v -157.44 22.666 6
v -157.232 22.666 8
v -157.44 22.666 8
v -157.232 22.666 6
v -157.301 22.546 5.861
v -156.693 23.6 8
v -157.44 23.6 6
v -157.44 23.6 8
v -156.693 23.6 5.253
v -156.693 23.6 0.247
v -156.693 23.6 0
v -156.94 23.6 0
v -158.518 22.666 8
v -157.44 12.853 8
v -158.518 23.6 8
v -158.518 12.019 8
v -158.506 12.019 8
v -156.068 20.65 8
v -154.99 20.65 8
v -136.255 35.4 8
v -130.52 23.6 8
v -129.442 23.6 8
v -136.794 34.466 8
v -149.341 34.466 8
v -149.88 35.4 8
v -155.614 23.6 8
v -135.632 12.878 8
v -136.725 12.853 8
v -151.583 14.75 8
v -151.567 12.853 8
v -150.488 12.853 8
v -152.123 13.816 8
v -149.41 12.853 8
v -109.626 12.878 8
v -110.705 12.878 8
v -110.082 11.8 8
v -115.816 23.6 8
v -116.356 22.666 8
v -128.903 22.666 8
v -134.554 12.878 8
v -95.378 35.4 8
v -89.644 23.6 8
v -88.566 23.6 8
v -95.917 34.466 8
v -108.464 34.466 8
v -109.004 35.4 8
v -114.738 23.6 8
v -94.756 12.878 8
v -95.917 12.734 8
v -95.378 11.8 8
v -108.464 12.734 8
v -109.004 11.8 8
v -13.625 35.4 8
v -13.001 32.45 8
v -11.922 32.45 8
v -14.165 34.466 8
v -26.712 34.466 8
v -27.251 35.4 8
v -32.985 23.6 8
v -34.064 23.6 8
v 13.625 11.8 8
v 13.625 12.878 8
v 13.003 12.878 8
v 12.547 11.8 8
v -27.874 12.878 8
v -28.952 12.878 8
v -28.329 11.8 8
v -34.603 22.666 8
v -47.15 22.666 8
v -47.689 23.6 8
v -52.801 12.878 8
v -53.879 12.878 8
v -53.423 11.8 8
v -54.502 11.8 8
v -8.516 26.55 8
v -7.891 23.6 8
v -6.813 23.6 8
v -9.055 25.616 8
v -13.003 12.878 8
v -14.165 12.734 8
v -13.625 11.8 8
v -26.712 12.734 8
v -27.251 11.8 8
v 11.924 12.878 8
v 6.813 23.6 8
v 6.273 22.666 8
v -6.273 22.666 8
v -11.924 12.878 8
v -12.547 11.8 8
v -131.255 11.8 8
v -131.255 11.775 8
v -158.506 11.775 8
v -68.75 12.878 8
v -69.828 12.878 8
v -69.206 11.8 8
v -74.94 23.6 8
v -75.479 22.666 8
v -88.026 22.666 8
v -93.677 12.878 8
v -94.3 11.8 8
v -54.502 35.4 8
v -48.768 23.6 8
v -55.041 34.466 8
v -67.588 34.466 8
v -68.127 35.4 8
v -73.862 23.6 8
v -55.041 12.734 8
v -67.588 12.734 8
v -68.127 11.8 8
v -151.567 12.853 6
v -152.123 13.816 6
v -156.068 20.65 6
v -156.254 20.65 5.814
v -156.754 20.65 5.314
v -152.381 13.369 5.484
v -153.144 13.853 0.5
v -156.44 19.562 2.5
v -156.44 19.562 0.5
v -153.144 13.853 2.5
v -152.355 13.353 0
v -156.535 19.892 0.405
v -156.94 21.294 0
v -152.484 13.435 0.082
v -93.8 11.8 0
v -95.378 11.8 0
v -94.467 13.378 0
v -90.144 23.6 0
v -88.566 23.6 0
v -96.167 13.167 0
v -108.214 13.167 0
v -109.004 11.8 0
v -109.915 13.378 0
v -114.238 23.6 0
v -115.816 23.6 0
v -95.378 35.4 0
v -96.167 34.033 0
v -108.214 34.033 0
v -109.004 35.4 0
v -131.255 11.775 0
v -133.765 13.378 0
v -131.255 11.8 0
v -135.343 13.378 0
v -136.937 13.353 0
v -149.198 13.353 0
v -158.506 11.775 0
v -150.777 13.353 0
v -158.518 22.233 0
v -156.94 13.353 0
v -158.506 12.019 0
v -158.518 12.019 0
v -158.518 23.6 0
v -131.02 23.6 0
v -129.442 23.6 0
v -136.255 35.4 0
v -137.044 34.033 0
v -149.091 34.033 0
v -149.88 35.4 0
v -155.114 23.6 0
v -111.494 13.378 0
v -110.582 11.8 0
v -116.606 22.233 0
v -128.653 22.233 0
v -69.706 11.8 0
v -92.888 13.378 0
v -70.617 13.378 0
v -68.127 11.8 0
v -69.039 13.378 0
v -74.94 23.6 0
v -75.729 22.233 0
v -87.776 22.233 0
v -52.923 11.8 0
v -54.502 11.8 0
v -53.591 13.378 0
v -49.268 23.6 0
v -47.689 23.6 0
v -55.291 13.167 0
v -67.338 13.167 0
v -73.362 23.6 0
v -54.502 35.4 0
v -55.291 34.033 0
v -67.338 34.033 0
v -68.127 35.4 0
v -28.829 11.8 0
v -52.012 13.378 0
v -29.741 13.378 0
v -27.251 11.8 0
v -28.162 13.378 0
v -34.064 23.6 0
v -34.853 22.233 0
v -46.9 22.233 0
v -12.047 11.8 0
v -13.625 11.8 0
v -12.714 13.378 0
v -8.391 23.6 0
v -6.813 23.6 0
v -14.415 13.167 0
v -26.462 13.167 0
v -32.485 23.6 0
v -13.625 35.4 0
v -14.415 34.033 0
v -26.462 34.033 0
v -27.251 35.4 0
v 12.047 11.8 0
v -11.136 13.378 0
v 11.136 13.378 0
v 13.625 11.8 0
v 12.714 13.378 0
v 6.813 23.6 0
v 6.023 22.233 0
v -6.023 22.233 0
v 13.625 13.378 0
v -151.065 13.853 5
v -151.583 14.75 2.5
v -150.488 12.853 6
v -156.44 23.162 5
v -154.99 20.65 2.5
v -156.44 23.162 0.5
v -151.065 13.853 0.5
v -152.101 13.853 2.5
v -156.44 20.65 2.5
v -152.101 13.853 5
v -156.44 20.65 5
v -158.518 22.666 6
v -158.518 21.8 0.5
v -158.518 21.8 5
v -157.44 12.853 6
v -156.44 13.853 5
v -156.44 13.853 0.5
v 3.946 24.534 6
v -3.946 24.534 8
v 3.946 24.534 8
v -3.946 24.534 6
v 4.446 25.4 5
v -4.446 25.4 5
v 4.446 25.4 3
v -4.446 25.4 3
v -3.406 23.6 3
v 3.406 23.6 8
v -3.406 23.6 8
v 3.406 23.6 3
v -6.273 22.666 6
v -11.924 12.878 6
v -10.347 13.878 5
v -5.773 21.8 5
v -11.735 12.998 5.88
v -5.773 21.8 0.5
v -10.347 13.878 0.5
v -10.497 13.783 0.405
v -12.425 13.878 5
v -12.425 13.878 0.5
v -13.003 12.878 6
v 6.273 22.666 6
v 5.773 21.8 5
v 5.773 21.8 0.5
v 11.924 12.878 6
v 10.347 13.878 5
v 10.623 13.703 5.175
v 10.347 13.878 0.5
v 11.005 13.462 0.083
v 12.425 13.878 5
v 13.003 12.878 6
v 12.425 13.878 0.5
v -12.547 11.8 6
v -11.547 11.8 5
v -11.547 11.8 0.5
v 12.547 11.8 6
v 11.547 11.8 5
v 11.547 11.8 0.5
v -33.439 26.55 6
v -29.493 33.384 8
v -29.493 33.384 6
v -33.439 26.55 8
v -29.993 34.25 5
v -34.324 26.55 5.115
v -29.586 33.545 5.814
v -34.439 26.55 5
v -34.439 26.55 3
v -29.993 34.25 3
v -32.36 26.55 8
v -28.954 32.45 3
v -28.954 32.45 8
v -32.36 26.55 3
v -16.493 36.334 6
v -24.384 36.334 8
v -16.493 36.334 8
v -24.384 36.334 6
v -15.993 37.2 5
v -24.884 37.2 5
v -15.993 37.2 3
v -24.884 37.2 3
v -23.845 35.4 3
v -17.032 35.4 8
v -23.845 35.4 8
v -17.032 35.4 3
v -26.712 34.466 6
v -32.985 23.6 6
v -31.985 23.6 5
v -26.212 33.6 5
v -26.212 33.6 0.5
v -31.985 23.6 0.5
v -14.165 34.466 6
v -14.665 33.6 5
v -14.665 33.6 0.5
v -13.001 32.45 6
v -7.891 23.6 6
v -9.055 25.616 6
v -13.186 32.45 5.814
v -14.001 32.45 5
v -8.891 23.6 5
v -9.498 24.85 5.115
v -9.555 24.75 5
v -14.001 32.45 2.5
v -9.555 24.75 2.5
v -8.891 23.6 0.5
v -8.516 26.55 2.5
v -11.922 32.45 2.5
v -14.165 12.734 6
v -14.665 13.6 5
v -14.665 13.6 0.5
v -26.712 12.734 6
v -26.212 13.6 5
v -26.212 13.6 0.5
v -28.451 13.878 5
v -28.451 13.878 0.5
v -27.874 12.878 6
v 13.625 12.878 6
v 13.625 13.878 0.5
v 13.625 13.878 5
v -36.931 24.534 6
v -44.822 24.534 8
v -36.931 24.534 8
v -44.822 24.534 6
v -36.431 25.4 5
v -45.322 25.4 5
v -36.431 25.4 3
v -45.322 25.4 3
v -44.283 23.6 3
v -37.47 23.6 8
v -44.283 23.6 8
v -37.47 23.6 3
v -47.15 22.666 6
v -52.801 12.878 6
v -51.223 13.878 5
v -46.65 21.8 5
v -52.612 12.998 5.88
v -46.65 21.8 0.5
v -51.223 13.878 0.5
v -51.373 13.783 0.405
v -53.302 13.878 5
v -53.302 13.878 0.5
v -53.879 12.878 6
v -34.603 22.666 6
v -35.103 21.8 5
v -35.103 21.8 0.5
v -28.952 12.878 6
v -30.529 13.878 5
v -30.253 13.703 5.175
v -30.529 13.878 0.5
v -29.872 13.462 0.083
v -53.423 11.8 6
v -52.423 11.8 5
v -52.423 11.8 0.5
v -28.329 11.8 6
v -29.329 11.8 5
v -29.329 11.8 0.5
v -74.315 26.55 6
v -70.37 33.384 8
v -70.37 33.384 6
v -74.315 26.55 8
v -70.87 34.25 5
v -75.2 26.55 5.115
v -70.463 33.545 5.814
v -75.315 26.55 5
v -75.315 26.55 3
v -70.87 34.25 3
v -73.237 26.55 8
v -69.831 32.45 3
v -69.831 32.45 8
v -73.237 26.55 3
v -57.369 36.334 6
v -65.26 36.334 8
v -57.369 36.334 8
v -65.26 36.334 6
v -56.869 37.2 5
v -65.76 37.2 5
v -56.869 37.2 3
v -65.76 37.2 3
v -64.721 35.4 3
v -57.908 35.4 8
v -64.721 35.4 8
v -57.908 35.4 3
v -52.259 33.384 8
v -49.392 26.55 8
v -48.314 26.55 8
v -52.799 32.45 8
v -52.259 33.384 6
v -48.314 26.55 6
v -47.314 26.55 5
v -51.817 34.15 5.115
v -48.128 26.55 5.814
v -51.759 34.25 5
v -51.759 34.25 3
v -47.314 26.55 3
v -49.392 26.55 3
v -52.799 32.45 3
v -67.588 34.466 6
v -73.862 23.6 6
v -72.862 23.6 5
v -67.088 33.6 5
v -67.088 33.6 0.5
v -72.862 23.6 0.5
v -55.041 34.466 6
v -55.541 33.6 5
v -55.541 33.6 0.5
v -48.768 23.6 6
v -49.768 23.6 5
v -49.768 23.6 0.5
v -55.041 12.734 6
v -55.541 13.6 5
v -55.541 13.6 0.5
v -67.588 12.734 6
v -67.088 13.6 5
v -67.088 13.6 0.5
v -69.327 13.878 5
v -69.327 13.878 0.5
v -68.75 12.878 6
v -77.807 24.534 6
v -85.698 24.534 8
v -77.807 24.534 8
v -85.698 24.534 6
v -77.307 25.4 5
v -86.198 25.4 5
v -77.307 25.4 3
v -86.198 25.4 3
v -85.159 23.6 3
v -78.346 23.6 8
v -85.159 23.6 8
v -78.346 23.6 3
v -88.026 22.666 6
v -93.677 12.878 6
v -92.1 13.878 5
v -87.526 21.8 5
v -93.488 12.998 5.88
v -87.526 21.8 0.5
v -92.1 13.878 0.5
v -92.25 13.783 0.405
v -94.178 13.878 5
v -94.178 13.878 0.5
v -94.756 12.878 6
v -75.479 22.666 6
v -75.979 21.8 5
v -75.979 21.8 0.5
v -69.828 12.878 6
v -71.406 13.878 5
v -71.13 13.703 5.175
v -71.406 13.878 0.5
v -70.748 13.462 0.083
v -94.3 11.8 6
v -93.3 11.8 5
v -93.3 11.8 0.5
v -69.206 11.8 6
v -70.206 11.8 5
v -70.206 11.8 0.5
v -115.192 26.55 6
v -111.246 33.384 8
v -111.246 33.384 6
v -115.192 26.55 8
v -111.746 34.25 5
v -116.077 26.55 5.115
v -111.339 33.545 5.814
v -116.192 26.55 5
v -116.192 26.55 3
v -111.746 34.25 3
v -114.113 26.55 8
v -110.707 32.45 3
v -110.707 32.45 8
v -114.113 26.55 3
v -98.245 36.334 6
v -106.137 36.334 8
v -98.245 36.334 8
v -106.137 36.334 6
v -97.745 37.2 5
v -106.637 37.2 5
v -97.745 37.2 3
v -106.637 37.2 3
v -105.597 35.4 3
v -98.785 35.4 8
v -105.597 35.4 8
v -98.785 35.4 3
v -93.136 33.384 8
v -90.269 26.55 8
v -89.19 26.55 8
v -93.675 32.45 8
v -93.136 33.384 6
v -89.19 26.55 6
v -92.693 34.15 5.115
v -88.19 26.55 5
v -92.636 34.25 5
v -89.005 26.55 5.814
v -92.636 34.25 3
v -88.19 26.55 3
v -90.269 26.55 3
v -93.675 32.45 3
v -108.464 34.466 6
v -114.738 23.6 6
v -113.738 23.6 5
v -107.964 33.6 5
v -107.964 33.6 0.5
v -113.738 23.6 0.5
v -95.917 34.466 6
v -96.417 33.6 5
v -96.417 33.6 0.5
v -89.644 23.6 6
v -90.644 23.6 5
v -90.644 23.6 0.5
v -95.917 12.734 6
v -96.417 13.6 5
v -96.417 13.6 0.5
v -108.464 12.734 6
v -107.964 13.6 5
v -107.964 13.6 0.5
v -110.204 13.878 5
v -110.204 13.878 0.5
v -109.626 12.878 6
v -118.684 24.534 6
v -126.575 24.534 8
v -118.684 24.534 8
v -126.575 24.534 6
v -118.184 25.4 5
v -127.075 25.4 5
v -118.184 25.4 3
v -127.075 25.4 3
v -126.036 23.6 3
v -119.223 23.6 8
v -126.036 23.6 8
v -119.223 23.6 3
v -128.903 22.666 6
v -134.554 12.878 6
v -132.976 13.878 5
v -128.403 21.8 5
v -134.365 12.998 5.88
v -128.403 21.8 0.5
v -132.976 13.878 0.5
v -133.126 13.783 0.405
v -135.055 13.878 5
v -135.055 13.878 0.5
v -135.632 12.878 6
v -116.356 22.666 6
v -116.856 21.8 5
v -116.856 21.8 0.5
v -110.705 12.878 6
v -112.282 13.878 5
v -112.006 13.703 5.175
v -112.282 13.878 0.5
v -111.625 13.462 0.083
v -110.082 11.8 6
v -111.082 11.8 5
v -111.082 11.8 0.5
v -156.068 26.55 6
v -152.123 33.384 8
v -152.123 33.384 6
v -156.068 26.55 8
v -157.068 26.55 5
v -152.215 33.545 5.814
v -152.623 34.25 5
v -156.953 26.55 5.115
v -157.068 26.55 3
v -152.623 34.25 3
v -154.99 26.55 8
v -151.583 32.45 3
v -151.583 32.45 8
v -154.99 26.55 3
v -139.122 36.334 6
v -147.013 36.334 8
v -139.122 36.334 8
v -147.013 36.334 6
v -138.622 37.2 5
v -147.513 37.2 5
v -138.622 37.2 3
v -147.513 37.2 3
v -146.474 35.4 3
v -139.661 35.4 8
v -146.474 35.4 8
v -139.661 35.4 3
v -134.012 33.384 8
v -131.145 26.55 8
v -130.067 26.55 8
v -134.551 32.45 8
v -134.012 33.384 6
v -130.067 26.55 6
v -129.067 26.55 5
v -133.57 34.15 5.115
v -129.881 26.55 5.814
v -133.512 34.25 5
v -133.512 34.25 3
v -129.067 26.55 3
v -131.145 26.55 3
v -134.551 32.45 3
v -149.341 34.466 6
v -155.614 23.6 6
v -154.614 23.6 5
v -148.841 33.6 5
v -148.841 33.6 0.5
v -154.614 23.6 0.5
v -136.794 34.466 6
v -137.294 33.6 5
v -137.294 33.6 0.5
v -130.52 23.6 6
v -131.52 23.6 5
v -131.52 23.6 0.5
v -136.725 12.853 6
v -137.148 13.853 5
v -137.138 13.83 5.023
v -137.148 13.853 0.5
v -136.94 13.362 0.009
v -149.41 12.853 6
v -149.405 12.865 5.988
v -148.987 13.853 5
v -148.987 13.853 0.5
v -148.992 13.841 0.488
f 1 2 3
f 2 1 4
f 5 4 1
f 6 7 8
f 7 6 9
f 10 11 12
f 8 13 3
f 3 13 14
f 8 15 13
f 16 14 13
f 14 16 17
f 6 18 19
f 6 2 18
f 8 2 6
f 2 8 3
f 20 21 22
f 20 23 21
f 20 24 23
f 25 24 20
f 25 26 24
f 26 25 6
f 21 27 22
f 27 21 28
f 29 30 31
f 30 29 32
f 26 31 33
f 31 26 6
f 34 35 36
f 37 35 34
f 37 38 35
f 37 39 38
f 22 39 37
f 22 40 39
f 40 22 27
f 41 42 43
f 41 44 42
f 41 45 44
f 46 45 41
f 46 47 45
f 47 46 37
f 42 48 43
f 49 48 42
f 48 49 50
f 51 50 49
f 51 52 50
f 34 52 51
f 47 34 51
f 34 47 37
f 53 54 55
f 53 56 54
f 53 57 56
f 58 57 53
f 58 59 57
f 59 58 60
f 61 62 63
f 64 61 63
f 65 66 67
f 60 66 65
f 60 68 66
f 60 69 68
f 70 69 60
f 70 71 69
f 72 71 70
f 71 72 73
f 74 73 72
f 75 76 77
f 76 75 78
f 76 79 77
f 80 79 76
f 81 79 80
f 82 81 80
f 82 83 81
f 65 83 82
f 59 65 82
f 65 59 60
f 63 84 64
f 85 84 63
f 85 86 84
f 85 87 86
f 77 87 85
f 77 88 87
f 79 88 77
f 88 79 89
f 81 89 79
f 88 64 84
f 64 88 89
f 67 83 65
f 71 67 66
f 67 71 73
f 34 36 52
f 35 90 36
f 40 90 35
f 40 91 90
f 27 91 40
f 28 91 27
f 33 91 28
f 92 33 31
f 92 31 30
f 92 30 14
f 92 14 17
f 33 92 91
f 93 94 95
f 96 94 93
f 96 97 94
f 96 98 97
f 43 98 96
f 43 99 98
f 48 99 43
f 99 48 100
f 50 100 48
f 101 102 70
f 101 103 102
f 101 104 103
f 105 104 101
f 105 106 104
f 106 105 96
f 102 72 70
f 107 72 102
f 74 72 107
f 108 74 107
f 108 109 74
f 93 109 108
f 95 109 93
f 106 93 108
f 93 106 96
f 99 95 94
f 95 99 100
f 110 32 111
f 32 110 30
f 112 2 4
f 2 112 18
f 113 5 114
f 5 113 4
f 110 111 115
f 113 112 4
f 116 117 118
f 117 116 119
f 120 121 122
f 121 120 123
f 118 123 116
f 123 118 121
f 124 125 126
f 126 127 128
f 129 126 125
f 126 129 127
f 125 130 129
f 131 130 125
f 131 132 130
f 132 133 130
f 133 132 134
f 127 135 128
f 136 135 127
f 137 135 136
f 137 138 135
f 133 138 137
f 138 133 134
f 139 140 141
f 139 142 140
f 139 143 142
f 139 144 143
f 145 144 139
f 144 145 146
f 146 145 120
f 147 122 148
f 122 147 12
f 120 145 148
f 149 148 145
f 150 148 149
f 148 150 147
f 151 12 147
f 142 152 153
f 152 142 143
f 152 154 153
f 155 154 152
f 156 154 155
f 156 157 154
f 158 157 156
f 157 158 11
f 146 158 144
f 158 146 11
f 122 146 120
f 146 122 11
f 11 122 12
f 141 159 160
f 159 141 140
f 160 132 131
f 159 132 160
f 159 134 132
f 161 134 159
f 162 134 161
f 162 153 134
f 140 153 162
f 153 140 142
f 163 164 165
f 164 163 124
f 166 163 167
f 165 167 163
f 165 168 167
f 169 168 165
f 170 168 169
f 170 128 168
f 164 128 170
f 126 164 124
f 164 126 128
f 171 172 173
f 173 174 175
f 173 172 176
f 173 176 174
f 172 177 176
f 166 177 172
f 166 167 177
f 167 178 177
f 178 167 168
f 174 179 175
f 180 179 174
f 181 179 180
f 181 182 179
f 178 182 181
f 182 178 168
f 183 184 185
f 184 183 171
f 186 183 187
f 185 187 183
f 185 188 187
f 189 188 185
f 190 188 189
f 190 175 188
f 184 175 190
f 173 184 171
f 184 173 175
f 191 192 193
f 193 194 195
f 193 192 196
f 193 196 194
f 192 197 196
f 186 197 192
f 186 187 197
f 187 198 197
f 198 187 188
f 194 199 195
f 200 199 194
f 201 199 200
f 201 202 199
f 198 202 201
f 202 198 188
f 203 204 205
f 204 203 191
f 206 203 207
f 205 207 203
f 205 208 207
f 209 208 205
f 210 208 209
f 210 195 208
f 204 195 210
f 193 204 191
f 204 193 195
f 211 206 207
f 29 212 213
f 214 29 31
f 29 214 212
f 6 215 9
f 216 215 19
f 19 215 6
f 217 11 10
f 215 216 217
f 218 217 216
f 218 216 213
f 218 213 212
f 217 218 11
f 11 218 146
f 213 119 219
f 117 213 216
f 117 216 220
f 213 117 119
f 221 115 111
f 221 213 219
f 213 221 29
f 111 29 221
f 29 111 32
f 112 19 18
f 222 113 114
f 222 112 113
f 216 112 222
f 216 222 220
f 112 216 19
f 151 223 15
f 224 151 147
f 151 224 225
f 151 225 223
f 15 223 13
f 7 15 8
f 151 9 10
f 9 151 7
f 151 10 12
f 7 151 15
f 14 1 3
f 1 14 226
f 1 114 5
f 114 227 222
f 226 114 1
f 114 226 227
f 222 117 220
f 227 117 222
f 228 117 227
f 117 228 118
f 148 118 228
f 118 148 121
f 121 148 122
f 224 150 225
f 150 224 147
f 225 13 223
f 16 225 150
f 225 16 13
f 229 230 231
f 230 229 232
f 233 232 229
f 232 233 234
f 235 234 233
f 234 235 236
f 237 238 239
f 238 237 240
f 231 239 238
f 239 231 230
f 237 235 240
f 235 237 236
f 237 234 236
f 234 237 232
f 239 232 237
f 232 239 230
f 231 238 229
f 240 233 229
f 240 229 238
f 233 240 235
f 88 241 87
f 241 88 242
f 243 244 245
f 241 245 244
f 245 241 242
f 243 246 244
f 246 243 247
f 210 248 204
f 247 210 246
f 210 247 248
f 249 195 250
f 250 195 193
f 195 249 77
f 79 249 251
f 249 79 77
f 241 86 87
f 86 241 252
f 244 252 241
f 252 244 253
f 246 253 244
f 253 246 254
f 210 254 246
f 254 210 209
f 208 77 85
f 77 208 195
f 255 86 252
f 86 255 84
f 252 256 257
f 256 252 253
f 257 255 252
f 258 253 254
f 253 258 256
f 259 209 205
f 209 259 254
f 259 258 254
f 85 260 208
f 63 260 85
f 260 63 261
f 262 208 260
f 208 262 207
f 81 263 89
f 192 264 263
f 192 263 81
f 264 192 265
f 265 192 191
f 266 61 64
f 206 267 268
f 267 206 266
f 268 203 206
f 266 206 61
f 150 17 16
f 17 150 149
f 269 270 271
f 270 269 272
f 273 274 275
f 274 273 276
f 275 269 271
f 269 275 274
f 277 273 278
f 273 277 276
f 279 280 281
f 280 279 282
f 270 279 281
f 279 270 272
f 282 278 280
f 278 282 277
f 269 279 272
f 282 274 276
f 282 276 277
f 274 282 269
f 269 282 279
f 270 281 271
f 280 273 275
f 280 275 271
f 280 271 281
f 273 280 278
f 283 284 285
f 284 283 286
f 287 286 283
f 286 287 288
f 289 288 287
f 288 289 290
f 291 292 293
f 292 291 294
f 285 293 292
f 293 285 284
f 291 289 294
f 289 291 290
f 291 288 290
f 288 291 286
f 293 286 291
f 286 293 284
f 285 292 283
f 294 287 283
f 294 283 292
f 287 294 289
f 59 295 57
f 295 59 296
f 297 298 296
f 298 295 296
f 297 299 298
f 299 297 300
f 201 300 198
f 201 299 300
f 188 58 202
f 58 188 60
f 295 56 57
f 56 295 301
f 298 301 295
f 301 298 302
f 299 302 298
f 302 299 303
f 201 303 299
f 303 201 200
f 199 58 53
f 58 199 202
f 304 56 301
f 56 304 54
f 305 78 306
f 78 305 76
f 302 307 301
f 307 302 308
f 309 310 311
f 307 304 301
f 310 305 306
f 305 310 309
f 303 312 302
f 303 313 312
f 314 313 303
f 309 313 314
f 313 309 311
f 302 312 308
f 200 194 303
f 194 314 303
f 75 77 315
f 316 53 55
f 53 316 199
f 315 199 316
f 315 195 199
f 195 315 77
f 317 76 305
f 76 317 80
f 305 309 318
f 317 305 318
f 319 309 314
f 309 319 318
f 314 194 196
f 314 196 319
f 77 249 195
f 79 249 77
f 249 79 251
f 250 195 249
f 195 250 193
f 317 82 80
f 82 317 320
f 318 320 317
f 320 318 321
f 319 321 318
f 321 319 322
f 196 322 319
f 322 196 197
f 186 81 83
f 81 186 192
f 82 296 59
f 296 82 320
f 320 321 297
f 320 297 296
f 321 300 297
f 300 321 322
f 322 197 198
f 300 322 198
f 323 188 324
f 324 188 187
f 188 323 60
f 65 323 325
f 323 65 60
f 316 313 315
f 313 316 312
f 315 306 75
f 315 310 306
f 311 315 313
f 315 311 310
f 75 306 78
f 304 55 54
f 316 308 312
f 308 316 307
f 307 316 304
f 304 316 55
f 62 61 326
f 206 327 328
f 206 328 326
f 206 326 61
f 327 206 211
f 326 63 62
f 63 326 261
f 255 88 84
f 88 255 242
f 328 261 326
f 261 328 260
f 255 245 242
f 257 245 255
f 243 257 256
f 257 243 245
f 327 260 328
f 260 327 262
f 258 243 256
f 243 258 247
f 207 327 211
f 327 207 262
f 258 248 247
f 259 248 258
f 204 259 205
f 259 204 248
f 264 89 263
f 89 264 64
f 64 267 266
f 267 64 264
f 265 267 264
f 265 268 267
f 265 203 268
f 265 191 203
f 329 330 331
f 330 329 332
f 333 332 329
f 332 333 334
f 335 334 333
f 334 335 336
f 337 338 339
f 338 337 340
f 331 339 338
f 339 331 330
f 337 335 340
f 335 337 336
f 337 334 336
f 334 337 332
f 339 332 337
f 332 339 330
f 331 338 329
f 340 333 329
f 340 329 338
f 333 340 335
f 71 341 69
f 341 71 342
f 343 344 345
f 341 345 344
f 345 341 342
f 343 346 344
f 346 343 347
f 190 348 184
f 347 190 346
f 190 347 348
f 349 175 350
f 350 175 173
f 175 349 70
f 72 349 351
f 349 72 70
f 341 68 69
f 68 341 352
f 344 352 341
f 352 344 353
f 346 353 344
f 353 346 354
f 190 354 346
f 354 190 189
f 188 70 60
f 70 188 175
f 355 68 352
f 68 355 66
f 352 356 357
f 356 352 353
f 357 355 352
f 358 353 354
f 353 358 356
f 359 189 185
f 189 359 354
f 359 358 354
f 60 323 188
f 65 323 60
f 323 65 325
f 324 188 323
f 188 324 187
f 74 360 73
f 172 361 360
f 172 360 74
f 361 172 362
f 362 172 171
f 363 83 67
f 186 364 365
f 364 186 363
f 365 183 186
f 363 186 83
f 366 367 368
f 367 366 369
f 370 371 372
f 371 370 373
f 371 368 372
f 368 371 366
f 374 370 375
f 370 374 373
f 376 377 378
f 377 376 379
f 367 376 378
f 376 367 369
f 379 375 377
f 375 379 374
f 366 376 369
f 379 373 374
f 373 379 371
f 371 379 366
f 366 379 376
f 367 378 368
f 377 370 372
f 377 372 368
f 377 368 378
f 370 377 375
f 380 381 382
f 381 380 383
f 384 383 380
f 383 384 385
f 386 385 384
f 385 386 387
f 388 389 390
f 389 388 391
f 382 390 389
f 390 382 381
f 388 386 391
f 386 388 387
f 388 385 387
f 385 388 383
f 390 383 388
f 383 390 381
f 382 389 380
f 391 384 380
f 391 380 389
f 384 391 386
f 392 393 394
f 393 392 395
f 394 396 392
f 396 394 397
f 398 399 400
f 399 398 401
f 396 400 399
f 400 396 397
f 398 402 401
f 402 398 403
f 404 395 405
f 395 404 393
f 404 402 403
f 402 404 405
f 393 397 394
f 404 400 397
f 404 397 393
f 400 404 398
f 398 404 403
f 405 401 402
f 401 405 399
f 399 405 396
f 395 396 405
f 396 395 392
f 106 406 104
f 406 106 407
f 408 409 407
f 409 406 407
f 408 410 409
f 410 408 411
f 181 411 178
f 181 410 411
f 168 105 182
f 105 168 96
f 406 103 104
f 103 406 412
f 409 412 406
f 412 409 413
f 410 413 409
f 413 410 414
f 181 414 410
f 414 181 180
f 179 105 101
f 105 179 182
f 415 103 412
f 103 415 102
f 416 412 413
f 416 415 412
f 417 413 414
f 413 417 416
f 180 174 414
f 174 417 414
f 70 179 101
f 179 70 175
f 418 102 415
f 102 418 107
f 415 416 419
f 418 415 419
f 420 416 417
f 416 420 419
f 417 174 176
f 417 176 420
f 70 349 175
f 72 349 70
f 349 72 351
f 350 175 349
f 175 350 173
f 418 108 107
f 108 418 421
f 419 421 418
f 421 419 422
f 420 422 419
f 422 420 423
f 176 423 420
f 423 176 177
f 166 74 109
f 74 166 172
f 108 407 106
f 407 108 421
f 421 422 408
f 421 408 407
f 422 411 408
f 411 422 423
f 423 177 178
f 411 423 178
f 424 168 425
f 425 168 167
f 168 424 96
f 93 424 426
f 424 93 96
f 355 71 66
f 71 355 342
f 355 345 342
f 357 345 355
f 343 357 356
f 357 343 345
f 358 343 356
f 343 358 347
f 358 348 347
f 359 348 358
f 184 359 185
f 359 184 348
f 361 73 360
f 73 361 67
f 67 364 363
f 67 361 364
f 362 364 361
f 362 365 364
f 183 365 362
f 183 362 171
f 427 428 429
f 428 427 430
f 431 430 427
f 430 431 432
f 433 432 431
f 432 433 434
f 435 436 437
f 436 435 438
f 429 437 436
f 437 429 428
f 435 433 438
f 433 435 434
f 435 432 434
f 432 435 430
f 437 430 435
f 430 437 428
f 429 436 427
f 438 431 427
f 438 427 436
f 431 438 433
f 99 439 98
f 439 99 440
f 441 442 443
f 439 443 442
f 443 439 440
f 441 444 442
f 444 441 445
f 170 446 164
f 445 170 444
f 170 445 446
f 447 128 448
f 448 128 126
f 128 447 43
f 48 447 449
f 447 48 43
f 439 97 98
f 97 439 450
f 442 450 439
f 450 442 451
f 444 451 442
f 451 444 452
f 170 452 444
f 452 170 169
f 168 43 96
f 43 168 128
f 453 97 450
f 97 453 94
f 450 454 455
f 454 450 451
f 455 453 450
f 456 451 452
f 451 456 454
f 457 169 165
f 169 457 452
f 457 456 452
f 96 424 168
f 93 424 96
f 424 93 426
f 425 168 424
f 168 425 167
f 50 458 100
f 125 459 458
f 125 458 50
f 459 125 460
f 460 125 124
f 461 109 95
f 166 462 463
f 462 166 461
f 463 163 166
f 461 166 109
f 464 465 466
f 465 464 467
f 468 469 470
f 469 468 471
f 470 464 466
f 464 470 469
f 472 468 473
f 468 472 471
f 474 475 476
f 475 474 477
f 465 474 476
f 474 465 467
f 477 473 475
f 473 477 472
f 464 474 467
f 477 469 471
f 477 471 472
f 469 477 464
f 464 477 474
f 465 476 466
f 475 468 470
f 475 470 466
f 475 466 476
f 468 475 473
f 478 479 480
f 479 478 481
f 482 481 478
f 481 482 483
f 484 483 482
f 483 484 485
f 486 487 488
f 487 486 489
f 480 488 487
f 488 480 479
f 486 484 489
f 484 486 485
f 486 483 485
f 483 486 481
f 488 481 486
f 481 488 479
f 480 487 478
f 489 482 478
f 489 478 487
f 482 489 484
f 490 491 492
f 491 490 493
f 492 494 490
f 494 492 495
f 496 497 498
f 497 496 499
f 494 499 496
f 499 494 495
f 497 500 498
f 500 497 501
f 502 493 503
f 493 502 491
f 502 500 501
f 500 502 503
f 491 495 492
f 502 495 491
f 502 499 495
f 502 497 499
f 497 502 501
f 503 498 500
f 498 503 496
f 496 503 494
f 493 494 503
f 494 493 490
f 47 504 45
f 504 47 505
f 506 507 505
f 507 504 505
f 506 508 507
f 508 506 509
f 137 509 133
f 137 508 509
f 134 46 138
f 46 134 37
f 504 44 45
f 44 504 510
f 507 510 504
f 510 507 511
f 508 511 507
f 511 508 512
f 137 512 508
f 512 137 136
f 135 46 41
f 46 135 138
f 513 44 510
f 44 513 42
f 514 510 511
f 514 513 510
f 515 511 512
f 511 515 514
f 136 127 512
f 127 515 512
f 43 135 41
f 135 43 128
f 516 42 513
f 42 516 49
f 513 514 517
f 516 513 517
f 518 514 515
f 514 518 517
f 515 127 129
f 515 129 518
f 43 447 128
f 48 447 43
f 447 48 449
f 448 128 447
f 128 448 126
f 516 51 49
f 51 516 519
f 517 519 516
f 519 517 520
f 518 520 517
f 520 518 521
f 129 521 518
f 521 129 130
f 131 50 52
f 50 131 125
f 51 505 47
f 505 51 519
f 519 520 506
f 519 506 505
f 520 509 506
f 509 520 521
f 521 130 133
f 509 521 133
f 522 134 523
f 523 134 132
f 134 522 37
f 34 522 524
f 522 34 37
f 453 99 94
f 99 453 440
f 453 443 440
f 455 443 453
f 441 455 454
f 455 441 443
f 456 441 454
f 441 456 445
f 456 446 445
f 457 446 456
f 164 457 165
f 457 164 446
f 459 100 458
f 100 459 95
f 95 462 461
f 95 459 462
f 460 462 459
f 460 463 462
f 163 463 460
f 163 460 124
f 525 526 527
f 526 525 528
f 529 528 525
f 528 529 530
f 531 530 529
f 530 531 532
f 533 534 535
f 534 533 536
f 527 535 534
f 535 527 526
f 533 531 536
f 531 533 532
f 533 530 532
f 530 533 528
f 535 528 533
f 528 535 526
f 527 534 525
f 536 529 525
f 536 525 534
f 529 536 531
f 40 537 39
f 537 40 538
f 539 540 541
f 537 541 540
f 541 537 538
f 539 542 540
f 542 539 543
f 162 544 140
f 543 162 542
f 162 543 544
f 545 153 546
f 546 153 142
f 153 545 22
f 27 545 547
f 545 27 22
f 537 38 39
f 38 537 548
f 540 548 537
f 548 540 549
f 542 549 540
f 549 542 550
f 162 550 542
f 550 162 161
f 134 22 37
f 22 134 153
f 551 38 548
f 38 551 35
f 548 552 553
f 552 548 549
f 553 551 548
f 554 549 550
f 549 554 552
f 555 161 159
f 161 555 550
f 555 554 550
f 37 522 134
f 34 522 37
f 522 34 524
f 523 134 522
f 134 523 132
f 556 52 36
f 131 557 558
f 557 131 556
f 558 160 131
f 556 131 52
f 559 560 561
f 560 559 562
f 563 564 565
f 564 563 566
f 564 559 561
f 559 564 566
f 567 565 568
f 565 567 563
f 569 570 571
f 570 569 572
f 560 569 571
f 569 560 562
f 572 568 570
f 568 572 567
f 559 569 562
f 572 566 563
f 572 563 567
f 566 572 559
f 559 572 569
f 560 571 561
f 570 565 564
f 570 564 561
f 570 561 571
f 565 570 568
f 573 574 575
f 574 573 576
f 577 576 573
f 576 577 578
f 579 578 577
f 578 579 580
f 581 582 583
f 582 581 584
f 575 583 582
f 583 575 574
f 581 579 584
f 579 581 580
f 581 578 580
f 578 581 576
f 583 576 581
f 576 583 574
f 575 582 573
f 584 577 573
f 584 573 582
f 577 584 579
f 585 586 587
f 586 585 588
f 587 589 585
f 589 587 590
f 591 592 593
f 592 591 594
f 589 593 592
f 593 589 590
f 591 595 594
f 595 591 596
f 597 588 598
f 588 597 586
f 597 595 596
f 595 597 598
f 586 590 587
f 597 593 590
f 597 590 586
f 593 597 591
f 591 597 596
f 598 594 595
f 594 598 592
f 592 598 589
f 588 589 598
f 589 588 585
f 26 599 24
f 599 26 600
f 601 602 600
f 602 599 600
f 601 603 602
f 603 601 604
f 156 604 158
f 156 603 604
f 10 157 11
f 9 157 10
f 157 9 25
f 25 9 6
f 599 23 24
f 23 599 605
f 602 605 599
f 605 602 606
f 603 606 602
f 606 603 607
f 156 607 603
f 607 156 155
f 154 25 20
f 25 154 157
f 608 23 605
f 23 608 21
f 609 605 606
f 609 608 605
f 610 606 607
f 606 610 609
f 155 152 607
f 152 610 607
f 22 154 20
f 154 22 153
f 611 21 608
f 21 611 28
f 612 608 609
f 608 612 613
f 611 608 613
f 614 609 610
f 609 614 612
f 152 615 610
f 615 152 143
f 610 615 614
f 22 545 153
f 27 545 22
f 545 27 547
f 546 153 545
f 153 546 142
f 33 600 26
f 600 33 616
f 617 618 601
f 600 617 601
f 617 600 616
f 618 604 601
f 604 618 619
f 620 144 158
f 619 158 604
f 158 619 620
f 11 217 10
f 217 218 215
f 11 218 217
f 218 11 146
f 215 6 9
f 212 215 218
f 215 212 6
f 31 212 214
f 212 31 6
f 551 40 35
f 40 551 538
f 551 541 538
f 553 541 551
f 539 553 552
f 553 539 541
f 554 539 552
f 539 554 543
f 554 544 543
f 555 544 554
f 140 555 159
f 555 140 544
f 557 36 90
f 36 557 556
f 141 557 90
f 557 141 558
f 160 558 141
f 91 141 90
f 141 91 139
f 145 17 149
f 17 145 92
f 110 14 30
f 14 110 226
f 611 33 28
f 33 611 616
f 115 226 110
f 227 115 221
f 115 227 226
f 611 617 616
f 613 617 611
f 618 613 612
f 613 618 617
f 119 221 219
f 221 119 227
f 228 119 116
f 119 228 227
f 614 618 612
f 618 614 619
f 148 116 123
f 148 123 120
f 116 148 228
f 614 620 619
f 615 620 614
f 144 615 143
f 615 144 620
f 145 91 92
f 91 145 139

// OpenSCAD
// file: honeycomb_element.scad
$fn = 50;

radius = 13.6;
diameter = radius * 2;

h_inner = 10;
r_inner = h_inner * 2 / sqrt(3);

h_outer = 10 + 1.8;
r_outer = h_outer * 2 / sqrt(3);

h_thin = 10 + 1;
r_thin = h_thin * 2 / sqrt(3);

total_height = 8;

small_value = 0.1;

clips_height = 5;
clips_offset = 0.5;
clips_side_offset = 0.00;

module basic_polygon() {
  polygon(
    [
      [r_outer, total_height],
      [r_outer, 0],
      [r_inner + 0.5, 0],
      [r_inner, 0.5],
      [r_inner, total_height - 3],
      [r_inner + 1, total_height - 2],
      [r_inner + 1, total_height],
    ]
  );
}

module basic_model() {
  rotate_extrude($fn=6) {
    basic_polygon();
  }
}

module panel_with_clips(pin_1 = false, pin_2 = false, pin_3 = false, pin_4 = false, pin_5 = false, pin_6 = false, slot_1 = false, slot_2 = false, slot_3 = false, slot_4 = false, slot_5 = false, slot_6 = false) {

  difference() {
    basic_model();

    if (slot_1) {
      rotate([0, 0, 0])
        translate([0, -h_outer * 2, total_height - (clips_height + clips_offset) / 2])
          linear_extrude(height=clips_height + clips_offset, center=true)
            polygon([[clips_side_offset, h_outer / 2], [-clips_side_offset, h_outer / 2], [-r_outer / 2 - clips_side_offset, h_outer * 1.5], [r_outer / 2 + clips_side_offset, h_outer * 1.5]]);
    }

    if (slot_2) {
      rotate([0, 0, 60])
        translate([0, -h_outer * 2, total_height - (clips_height + clips_offset) / 2])
          linear_extrude(height=clips_height + clips_offset, center=true)
            polygon([[clips_side_offset, h_outer / 2], [-clips_side_offset, h_outer / 2], [-r_outer / 2 - clips_side_offset, h_outer * 1.5], [r_outer / 2 + clips_side_offset, h_outer * 1.5]]);
    }

    if (slot_3) {
      rotate([0, 0, 120])
        translate([0, -h_outer * 2, total_height - (clips_height + clips_offset) / 2])
          linear_extrude(height=clips_height + clips_offset, center=true)
            polygon([[clips_side_offset, h_outer / 2], [-clips_side_offset, h_outer / 2], [-r_outer / 2 - clips_side_offset, h_outer * 1.5], [r_outer / 2 + clips_side_offset, h_outer * 1.5]]);
    }

    if (slot_4) {
      rotate([0, 0, 180])
        translate([0, -h_outer * 2, total_height - (clips_height + clips_offset) / 2])
          linear_extrude(height=clips_height + clips_offset, center=true)
            polygon([[clips_side_offset, h_outer / 2], [-clips_side_offset, h_outer / 2], [-r_outer / 2 - clips_side_offset, h_outer * 1.5], [r_outer / 2 + clips_side_offset, h_outer * 1.5]]);
    }

    if (slot_5) {
      rotate([0, 0, 240])
        translate([0, -h_outer * 2, total_height - (clips_height + clips_offset) / 2])
          linear_extrude(height=clips_height + clips_offset, center=true)
            polygon([[clips_side_offset, h_outer / 2], [-clips_side_offset, h_outer / 2], [-r_outer / 2 - clips_side_offset, h_outer * 1.5], [r_outer / 2 + clips_side_offset, h_outer * 1.5]]);
    }

    if (slot_6) {
      rotate([0, 0, 300])
        translate([0, -h_outer * 2, total_height - (clips_height + clips_offset) / 2])
          linear_extrude(height=clips_height + clips_offset, center=true)
            polygon([[clips_side_offset, h_outer / 2], [-clips_side_offset, h_outer / 2], [-r_outer / 2 - clips_side_offset, h_outer * 1.5], [r_outer / 2 + clips_side_offset, h_outer * 1.5]]);
    }
  }

  if (pin_1) {
    intersection() {
      translate([0, -h_outer * 2, 0])
        basic_model();
      translate([0, 0, total_height - clips_height / 2]) {
        rotate([0, 0, -180])
          linear_extrude(height=clips_height, center=true)
            polygon([[0, h_outer / 2], [-r_outer / 2, h_outer * 1.5], [r_outer / 2, h_outer * 1.5]]);
      }
    }
  }

  if (pin_2) {
    intersection() {
      translate([r_outer * 1.5, -h_outer, 0])
        basic_model();
      translate([0, 0, total_height - clips_height / 2]) {
        rotate([0, 0, -120])
          linear_extrude(height=clips_height, center=true)
            polygon([[0, h_outer / 2], [-r_outer / 2, h_outer * 1.5], [r_outer / 2, h_outer * 1.5]]);
      }
    }
  }

  if (pin_3) {
    intersection() {
      translate([r_outer * 1.5, h_outer, 0])
        basic_model();
      translate([0, 0, total_height - clips_height / 2]) {
        rotate([0, 0, -60])
          linear_extrude(height=clips_height, center=true)
            polygon([[0, h_outer / 2], [-r_outer / 2, h_outer * 1.5], [r_outer / 2, h_outer * 1.5]]);
      }
    }
  }

  if (pin_4) {
    intersection() {
      translate([0, h_outer * 2, 0])
        basic_model();

      translate([0, 0, total_height - clips_height / 2]) {
        linear_extrude(height=clips_height, center=true)
          polygon([[0, h_outer / 2], [-r_outer / 2, h_outer * 1.5], [r_outer / 2, h_outer * 1.5]]);
      }
    }
  }

  if (pin_5) {
    intersection() {
      translate([-r_outer * 1.5, h_outer, 0])
        basic_model();
      translate([0, 0, total_height - clips_height / 2]) {
        rotate([0, 0, 60])
          linear_extrude(height=clips_height, center=true)
            polygon([[0, h_outer / 2], [-r_outer / 2, h_outer * 1.5], [r_outer / 2, h_outer * 1.5]]);
      }
    }
  }

  if (pin_6) {
    intersection() {
      translate([-r_outer * 1.5, -h_outer, 0])
        basic_model();

      translate([0, 0, total_height - clips_height / 2]) {
        rotate([0, 0, 120])
          linear_extrude(height=clips_height, center=true)
            polygon([[0, h_outer / 2], [-r_outer / 2, h_outer * 1.5], [r_outer / 2, h_outer * 1.5]]);
      }
    }
  }
}

// end honeycomb_element.scad
// main file
$fn = 50;

h_outer = 10+1.8;
r_outer = h_outer * 2/sqrt(3);

use <honeycomb_element.scad>;

module perimeter_top_item(left_slot=true, left_pin=false) {
  intersection() {
    translate([0, h_outer, 0])
        panel_with_clips(pin_4=true);  
    
    translate([0, 50+h_outer, 0])
        cube([100, 100, 100], center = true);
  }
  
  translate([-r_outer*1.5, 2*h_outer, 0])
     panel_with_clips(slot_3=left_slot, pin_3=left_pin, pin_4=true, pin_5=true); 
  
    
  translate([0, -(h_outer-r_outer)+2*h_outer, 0])
      rotate([90, 0, -90])
        linear_extrude(height = r_outer * 2, center=true)
          basic_polygon();
    
}

module perimeter_right_item(slot_5=true, slot_6=true) {
  difference() {
      translate([r_outer * 1.5, 0, 0])
        panel_with_clips(slot_6=slot_6, slot_5=slot_5);
      translate([50+r_outer * 1.5-r_outer/2 + (r_outer-h_outer), 0, 0])
        cube([100, 100, 100], center = true);
  }
  translate([0 + r_outer-h_outer, 0, 0])
    rotate([90, 0, 0])
      linear_extrude(height = h_outer * 2, center=true)
        basic_polygon();
}



module perimeter_bottom() {
    perimeter_top_item();
    
    
    translate([-3*r_outer, 0, 0])
      perimeter_top_item(left_slot=false, left_pin=true);

    translate([-6*r_outer, 0, 0])
      perimeter_top_item(left_slot=false, left_pin=true);    
    
    translate([-9*r_outer, 0, 0])  
      perimeter_top_item(left_slot=false, left_pin=true);    
    
    
    
    
    difference() {
      translate([-10.5*r_outer, h_outer, 0])
        rotate([0, 0, 180])
          perimeter_right_item();
        
    
      translate([-11*r_outer, 1.8, 0])
        cube([1.5*r_outer, 1.5*r_outer, 1.5*r_outer], center=true);
    }
    
    
    translate([-11.0*r_outer+5, 2*h_outer+1.8, 0])
      rotate([90, 0, -90])
        linear_extrude(height = r_outer * 2, center=true)
          basic_polygon();
    
}



    
perimeter_bottom();
